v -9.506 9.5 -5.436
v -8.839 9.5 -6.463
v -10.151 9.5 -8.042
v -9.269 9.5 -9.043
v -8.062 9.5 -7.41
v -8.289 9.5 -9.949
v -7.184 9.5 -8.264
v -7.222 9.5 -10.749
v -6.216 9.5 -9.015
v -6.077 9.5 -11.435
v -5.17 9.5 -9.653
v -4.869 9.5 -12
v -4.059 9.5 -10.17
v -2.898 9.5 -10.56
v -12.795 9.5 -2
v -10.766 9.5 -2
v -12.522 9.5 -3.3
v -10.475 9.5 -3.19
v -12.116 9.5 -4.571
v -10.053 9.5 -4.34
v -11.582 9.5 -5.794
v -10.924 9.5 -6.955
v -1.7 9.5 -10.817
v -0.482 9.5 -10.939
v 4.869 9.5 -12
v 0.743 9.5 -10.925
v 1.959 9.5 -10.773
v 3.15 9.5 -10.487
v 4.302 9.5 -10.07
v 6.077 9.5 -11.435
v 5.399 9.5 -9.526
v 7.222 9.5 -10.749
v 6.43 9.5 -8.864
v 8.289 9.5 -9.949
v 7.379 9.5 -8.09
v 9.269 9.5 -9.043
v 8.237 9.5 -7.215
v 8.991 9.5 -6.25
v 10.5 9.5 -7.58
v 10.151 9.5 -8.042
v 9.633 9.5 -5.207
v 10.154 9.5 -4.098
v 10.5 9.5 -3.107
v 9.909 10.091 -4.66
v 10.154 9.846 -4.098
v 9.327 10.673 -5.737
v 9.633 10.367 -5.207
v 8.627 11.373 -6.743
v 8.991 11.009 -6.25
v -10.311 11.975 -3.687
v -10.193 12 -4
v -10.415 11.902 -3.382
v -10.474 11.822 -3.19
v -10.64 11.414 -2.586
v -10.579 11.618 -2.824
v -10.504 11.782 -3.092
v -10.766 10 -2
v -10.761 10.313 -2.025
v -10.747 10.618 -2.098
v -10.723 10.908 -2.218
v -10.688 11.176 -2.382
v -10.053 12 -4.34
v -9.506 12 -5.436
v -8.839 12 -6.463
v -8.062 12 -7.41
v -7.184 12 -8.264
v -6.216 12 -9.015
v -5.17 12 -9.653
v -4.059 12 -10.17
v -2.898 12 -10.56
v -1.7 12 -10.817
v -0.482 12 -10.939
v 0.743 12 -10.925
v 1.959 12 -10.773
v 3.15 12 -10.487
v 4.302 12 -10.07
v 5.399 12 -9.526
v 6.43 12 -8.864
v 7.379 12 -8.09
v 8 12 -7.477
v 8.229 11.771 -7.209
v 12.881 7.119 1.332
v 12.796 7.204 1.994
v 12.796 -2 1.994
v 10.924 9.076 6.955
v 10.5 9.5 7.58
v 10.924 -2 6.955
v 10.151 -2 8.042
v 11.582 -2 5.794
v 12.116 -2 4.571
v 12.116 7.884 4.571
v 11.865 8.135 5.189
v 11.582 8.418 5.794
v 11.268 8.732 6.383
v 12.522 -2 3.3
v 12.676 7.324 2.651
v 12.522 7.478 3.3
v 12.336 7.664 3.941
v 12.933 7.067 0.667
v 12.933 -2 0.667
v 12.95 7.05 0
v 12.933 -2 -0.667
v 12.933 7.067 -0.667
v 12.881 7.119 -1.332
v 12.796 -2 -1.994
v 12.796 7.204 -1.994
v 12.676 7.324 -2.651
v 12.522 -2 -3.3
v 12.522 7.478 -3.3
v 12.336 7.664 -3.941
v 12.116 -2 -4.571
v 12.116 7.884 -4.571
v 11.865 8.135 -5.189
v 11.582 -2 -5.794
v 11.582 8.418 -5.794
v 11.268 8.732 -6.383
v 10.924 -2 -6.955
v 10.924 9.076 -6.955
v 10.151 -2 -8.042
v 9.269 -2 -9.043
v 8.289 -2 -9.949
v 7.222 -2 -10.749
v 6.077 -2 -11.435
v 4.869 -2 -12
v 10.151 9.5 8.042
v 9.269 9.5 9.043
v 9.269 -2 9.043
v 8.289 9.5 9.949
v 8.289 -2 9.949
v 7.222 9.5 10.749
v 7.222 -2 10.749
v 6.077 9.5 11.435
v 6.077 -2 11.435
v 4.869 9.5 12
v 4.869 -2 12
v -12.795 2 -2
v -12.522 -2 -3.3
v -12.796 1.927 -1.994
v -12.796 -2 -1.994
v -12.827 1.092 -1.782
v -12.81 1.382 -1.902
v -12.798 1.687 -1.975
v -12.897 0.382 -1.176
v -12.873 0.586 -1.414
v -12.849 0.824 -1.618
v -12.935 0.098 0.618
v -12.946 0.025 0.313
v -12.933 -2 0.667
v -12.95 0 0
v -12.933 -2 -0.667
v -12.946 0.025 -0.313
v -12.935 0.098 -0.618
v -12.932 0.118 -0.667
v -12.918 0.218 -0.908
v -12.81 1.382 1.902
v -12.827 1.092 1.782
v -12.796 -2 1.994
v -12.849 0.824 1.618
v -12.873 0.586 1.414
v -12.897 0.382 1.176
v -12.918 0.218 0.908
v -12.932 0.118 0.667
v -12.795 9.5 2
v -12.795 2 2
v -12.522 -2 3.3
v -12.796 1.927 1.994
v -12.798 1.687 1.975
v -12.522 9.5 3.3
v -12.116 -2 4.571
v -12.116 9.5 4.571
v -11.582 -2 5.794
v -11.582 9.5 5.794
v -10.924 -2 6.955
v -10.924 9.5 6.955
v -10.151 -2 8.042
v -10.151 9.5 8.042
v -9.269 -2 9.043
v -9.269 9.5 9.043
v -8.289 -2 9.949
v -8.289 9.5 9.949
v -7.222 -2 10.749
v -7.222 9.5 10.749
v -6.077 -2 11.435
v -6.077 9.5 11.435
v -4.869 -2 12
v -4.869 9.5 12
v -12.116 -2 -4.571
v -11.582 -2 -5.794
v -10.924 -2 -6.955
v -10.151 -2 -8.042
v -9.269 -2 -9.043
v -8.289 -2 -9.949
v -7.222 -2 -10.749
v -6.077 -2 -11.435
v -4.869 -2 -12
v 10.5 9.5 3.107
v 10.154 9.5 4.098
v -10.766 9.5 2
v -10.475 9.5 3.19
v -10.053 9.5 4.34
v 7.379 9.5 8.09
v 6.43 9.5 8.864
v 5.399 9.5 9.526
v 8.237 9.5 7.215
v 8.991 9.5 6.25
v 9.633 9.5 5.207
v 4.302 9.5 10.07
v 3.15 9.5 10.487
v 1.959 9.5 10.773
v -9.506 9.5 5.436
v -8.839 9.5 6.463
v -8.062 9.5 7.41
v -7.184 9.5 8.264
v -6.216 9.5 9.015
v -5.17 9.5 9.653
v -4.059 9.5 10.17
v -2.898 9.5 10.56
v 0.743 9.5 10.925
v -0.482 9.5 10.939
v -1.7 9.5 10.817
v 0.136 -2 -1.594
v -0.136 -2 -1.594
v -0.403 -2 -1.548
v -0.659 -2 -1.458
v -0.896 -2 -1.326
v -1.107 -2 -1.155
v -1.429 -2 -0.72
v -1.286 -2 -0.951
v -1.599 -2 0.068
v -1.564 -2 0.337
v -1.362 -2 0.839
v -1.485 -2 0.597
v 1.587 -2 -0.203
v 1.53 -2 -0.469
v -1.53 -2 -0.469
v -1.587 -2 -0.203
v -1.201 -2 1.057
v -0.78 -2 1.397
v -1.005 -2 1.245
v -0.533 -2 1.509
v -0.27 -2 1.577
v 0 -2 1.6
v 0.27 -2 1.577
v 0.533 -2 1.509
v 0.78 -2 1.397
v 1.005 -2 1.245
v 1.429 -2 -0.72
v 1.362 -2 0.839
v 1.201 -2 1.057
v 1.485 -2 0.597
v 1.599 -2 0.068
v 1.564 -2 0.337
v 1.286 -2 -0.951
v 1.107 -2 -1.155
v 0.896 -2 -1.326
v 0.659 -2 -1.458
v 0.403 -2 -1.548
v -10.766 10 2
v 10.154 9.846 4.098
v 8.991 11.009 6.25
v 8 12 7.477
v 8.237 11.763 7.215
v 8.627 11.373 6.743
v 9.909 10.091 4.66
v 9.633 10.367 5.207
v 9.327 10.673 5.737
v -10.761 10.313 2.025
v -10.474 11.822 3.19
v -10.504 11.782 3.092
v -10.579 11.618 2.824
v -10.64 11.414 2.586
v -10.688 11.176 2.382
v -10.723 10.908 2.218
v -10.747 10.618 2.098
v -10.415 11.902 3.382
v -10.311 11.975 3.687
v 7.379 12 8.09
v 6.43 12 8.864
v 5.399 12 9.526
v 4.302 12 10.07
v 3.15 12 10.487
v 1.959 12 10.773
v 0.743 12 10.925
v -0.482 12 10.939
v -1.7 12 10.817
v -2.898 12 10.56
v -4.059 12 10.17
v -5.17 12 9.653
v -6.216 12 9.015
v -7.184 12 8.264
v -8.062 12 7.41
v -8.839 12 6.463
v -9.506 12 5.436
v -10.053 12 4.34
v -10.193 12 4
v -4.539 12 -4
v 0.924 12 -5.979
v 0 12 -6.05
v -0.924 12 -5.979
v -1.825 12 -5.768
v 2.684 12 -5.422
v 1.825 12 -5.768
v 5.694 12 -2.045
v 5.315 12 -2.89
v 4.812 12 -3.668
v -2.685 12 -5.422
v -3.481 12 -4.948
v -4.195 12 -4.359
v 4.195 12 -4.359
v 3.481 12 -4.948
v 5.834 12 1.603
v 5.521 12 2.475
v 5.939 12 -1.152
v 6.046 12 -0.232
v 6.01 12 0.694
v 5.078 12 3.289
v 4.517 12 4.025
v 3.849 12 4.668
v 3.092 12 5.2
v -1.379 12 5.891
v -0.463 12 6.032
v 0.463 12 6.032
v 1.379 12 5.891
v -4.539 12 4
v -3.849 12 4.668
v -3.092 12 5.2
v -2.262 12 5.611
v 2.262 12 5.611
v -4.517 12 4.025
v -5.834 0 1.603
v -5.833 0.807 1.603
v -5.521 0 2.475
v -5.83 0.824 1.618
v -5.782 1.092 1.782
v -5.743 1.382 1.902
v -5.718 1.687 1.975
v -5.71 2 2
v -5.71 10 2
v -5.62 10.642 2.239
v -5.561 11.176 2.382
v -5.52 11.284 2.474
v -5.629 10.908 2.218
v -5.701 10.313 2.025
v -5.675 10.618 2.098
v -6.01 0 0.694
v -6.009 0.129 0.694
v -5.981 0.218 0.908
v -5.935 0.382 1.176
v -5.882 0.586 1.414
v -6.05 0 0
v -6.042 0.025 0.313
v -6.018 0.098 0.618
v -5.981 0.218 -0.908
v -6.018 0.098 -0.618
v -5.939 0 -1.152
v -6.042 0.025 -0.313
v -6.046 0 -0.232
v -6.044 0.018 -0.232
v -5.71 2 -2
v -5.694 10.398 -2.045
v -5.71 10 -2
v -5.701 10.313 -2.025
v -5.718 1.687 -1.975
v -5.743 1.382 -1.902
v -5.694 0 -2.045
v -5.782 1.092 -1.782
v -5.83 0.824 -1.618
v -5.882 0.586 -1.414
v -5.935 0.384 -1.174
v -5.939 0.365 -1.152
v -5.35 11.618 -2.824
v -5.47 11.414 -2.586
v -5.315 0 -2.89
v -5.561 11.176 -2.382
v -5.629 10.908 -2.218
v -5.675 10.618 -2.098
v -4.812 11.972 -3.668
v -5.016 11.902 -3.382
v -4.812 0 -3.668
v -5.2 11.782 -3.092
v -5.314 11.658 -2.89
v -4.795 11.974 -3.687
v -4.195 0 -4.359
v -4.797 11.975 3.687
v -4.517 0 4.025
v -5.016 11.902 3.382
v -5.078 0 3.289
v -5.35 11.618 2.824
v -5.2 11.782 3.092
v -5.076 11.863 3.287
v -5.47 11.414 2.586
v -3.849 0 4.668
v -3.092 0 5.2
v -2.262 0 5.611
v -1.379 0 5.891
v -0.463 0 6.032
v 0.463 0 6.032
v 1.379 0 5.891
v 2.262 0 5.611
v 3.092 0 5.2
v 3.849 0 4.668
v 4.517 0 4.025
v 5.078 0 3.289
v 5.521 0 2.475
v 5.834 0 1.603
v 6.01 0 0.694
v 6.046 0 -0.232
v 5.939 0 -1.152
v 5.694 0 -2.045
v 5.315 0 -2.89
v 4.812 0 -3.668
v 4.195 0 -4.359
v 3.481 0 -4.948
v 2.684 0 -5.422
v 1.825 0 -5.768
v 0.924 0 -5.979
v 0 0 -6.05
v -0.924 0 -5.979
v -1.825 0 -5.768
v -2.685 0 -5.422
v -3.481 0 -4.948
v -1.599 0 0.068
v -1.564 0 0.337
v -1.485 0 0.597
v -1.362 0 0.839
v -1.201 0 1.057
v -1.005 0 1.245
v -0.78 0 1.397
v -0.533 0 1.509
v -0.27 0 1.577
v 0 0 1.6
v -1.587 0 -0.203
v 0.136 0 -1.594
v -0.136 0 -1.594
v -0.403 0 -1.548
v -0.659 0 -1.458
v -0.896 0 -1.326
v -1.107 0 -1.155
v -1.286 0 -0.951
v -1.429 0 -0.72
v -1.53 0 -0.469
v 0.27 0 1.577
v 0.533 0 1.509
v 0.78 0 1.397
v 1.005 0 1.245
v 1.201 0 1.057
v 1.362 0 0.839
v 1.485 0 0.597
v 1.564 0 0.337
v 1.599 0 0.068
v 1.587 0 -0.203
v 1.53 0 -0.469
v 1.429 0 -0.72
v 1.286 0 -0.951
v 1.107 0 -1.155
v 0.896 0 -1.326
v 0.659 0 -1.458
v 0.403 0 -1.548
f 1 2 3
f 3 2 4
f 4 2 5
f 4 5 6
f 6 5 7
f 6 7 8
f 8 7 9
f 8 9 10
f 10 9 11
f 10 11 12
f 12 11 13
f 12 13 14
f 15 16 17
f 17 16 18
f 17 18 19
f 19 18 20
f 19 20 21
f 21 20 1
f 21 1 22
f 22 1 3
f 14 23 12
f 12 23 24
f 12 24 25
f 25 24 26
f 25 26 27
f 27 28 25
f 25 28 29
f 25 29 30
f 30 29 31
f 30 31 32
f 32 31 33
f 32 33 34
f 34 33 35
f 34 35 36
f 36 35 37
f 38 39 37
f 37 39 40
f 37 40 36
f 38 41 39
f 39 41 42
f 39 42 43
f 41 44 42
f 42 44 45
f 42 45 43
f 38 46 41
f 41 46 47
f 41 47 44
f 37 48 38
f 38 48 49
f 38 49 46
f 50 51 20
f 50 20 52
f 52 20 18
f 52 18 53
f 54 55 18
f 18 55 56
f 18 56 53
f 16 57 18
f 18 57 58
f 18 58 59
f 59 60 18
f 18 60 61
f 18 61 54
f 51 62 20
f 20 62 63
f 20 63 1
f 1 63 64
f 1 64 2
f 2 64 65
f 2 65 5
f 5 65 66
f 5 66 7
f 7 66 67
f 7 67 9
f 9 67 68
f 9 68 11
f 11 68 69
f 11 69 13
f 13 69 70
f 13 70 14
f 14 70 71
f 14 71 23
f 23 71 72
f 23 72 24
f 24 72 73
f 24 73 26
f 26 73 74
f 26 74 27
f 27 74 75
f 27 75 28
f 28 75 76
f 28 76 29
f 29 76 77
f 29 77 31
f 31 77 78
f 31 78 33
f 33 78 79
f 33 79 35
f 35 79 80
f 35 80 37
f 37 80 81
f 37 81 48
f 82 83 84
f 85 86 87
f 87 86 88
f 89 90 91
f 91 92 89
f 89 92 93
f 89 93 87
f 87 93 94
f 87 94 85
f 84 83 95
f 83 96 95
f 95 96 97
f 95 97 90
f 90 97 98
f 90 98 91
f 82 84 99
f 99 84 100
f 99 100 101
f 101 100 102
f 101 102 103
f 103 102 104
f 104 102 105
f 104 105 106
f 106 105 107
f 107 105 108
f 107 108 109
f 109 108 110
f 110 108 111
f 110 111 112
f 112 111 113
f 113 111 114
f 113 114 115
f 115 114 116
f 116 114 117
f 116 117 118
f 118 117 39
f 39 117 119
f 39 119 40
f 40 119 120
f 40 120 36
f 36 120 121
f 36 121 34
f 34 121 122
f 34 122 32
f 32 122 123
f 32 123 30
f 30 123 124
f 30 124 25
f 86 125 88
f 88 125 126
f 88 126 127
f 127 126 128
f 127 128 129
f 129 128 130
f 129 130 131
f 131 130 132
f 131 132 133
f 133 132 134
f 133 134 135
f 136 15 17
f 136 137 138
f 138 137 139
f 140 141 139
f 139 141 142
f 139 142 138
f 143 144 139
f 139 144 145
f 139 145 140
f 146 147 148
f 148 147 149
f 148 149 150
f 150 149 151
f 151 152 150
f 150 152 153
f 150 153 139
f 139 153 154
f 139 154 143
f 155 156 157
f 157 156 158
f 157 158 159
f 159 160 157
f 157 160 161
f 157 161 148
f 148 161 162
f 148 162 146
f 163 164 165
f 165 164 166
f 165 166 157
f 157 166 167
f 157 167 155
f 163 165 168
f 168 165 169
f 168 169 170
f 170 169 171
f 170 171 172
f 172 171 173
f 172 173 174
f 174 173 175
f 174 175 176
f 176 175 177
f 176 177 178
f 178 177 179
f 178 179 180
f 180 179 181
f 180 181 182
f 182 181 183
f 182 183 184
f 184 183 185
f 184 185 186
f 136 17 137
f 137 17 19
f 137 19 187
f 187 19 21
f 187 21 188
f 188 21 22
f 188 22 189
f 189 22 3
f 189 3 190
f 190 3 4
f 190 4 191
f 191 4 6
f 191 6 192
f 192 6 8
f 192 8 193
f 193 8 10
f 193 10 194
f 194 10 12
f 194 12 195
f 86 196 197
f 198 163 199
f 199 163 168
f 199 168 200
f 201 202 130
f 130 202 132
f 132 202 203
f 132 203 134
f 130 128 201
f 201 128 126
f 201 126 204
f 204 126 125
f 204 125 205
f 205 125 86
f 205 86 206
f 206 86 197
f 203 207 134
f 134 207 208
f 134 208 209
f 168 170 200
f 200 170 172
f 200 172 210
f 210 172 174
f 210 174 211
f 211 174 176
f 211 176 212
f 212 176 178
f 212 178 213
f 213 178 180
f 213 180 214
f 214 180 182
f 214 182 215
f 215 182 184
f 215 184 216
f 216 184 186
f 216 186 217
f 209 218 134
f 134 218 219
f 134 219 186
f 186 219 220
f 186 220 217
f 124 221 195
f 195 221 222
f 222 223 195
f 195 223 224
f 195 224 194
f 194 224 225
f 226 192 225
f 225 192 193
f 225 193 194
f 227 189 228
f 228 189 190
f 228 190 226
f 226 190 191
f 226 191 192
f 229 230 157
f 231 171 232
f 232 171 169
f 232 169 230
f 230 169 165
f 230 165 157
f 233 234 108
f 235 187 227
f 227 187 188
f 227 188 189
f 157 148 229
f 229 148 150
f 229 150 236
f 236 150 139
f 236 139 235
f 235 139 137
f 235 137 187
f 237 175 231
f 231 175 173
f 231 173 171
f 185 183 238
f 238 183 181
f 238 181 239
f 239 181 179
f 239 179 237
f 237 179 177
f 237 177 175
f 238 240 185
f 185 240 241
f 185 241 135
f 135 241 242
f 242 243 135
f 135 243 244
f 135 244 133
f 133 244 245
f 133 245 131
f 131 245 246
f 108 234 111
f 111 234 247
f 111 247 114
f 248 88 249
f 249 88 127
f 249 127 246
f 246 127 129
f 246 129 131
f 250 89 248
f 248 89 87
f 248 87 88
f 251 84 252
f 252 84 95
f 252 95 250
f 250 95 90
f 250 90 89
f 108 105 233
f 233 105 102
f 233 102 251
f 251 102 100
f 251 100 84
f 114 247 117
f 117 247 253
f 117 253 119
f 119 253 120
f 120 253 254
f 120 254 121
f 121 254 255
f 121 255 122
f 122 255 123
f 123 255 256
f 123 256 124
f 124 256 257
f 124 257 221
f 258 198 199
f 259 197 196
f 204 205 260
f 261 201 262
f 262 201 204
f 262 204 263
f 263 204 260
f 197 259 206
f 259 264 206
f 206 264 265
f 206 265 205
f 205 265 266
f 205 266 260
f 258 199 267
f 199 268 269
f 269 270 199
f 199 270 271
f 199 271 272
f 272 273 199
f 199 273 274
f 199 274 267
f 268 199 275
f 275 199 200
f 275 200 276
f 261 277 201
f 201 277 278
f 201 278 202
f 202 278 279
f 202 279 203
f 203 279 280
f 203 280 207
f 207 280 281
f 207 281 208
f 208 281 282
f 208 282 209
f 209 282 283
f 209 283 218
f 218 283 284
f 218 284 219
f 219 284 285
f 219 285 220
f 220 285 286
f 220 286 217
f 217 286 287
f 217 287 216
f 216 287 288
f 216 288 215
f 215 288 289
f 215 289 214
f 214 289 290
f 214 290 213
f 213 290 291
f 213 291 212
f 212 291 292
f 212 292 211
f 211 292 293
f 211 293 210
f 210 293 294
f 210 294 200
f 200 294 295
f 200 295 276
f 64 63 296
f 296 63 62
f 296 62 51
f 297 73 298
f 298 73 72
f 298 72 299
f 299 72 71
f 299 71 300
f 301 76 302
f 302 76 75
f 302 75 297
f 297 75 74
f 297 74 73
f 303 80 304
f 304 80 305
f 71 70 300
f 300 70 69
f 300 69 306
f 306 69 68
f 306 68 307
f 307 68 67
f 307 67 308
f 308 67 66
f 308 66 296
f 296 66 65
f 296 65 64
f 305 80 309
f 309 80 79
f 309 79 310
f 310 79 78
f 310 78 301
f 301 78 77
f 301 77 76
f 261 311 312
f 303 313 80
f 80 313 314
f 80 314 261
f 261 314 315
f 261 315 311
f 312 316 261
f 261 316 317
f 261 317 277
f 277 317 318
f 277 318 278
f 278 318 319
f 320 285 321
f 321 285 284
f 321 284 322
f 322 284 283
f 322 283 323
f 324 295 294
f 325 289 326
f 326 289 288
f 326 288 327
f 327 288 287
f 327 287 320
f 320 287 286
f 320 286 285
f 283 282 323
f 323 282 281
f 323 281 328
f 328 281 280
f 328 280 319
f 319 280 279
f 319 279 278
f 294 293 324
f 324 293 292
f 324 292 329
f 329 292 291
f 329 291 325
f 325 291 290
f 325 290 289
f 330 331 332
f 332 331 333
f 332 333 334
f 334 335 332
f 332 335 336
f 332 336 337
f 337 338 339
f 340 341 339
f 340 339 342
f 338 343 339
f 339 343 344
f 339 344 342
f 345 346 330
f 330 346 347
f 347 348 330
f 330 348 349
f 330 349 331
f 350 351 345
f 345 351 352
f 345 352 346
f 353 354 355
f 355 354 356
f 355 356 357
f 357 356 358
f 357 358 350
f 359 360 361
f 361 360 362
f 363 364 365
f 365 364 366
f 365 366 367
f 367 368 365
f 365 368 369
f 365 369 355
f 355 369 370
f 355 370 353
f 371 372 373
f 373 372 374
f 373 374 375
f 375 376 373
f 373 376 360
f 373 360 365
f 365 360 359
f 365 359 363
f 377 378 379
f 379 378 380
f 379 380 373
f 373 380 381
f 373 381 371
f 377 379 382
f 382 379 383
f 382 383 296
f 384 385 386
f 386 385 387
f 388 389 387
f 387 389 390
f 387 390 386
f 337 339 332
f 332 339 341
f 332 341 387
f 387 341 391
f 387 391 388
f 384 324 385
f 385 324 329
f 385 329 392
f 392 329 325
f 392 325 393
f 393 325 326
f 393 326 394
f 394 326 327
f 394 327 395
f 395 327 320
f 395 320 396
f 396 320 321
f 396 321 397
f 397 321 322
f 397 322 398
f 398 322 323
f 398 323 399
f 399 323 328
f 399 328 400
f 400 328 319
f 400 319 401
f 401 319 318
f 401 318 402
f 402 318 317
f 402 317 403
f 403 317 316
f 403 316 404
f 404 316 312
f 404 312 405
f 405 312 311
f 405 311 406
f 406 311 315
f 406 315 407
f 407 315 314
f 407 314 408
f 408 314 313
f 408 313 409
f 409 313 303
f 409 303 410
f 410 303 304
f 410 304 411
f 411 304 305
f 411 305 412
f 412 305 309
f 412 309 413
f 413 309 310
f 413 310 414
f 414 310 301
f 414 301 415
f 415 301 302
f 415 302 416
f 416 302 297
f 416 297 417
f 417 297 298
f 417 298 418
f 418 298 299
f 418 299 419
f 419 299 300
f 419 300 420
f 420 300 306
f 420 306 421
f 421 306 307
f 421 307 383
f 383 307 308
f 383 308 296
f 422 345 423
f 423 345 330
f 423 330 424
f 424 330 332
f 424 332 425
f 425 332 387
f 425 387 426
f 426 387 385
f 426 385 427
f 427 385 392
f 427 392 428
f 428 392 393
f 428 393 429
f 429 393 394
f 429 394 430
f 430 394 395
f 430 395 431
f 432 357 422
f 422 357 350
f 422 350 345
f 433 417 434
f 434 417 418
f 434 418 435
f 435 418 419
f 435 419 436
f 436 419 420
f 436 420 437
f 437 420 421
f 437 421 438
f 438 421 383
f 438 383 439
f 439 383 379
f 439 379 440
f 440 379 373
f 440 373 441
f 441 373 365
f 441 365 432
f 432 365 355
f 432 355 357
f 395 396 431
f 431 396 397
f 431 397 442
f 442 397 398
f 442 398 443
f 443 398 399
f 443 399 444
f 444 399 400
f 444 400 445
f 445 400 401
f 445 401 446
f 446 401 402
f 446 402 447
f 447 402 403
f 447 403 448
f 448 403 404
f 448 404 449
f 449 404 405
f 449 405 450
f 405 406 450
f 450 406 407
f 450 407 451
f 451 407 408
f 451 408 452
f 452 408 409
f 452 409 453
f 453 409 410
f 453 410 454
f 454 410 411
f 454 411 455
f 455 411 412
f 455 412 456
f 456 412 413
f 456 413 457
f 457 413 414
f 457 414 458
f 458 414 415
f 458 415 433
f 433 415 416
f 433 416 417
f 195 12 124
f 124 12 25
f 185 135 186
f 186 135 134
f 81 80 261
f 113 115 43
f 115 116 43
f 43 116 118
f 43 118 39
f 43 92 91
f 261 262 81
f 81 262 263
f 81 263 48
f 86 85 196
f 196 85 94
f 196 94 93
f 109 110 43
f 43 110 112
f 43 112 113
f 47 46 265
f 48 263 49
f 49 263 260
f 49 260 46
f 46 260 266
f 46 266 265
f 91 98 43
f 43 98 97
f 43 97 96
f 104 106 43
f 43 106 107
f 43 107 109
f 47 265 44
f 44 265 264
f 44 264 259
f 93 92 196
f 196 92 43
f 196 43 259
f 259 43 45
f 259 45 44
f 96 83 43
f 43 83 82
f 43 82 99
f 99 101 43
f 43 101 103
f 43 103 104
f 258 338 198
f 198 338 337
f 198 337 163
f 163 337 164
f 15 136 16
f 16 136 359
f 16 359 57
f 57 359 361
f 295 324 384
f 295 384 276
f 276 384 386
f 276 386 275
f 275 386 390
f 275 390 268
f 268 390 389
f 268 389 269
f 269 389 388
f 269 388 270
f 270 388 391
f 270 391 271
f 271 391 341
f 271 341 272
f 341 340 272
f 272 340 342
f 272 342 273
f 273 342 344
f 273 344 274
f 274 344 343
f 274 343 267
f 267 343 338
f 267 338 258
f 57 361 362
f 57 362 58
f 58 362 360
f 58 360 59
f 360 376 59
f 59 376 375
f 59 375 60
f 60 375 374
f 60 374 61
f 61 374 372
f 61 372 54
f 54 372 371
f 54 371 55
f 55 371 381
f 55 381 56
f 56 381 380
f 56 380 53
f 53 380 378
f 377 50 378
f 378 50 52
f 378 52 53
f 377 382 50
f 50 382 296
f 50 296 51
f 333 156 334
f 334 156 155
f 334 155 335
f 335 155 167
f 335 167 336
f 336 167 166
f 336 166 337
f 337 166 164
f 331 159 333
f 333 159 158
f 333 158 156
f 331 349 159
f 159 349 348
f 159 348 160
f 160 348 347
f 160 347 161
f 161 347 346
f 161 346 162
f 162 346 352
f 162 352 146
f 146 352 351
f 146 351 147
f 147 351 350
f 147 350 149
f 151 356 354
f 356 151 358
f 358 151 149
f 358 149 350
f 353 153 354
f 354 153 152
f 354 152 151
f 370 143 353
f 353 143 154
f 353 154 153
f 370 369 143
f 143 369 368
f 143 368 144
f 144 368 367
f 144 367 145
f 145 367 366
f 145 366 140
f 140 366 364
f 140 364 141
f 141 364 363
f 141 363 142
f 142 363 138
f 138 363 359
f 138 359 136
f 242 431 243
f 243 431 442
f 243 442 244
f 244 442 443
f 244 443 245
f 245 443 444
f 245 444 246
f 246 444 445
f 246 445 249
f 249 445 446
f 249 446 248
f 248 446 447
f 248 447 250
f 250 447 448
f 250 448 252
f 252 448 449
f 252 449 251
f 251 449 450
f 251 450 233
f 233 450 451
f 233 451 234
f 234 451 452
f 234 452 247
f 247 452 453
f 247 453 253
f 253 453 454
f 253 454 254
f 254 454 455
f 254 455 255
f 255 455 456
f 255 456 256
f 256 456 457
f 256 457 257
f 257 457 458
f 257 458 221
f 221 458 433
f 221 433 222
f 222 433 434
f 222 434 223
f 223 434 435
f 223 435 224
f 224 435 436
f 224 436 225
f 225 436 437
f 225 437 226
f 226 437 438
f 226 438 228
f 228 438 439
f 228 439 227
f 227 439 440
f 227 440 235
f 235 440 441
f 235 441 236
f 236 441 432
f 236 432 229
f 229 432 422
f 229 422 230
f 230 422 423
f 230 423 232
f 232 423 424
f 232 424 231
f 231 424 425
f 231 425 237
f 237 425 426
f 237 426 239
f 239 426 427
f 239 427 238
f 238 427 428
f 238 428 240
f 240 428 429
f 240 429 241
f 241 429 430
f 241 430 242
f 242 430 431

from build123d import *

# Parameters (mm, degrees)
SKETCH1_R               = 10.95
SKETCH1_R_2             = 6.05
BOSS_EXTRUDE1_DEPTH     = 2
BOSS_EXTRUDE2_START     = 12
SKETCH1_3_R             = 10.95
SKETCH1_3_R_2           = 6.05
BOSS_EXTRUDE2_DEPTH     = 12
BOSS_EXTRUDE3_START     = -2.5
SKETCH2_R               = 12.95
SKETCH2_R_2             = 10.95
BOSS_EXTRUDE3_DEPTH     = 11.5
CUT_EXTRUDE1_DEPTH      = 22.895319134
CUT_EXTRUDE1_DEPTH_BACK = 22.895319134
SKETCH3_W               = 100
SKETCH3_H               = 24
CUT_EXTRUDE3_DEPTH      = 22.347189511
CUT_EXTRUDE3_DEPTH_BACK = 22.347189511
SKETCH5_W               = 18
SKETCH5_H               = 4
CUT_EXTRUDE4_DEPTH      = 22.347189511
FILLET1_R               = 2
CUT_EXTRUDE5_DEPTH      = 22.347189684
CUT_EXTRUDE5_DEPTH_BACK = 22.347189684
SKETCH6_R               = 1.6


with BuildPart() as part:
    # Sketch1 → Boss-Extrude1 (new body)
    # profile 1 of 2: a face of its own
    with BuildSketch(Plane(origin=(0, 0, 0), x_dir=(1, 0, 0), z_dir=(0, 1, 0))):
        with Locations(Location((0, 0, 0), (0, 0, 270))):
            Circle(SKETCH1_R)
        Circle(SKETCH1_R_2, mode=Mode.SUBTRACT)
    # profile 2 of 2: a face of its own
    with BuildSketch(Plane(origin=(0, 0, 0), x_dir=(1, 0, 0), z_dir=(0, 1, 0))):
        Circle(SKETCH1_R_2)
    extrude(amount=-BOSS_EXTRUDE1_DEPTH)

    # Sketch1<3> → Boss-Extrude2 (add)
    with BuildSketch(Plane(origin=(0, 0, 0), x_dir=(1, 0, 0), z_dir=(0, 1, 0)).offset(BOSS_EXTRUDE2_START)):
        with Locations(Location((0, 0, 0), (0, 0, 270))):
            Circle(SKETCH1_3_R)
        with Locations(Location((0, 0, 0), (0, 0, 270))):
            Circle(SKETCH1_3_R_2, mode=Mode.SUBTRACT)
    extrude(amount=-BOSS_EXTRUDE2_DEPTH)

    # Sketch2 → Boss-Extrude3 (add)
    with BuildSketch(Plane(origin=(0, 12, 0), x_dir=(1, 0, 0), z_dir=(0, 1, 0)).offset(BOSS_EXTRUDE3_START)):
        with Locations(Location((0, 0, 0), (0, 0, 270))):
            Circle(SKETCH2_R)
        with Locations(Location((0, 0, 0), (0, 0, 270))):
            Circle(SKETCH2_R_2, mode=Mode.SUBTRACT)
    extrude(amount=-BOSS_EXTRUDE3_DEPTH)

    # Sketch3 → Cut-Extrude1 (cut, two sides: drawn at the far end of the back side and taken through both)
    with BuildSketch(Plane(origin=(0, 0, 0), x_dir=(1, 0, 0), z_dir=(0, 1, 0)).offset(-CUT_EXTRUDE1_DEPTH_BACK)):
        with Locations((0, -24)):
            Rectangle(SKETCH3_W, SKETCH3_H)
        with Locations((0, 24)):
            Rectangle(SKETCH3_W, SKETCH3_H)
    extrude(amount=CUT_EXTRUDE1_DEPTH + CUT_EXTRUDE1_DEPTH_BACK, mode=Mode.SUBTRACT)

    # Sketch4 → Cut-Extrude3 (cut, two sides: drawn at the far end of the back side and taken through both)
    with BuildSketch(Plane.XY.offset(-CUT_EXTRUDE3_DEPTH_BACK)):
        Polygon((13, 15), (5, 15), (13, 7), align=None)
    extrude(amount=CUT_EXTRUDE3_DEPTH + CUT_EXTRUDE3_DEPTH_BACK, mode=Mode.SUBTRACT)

    # Sketch5 → Cut-Extrude4 (cut, through all)
    with BuildSketch(Plane(origin=(0, 0, 0), x_dir=(1, 0, 0), z_dir=(0, 1, 0))):
        with Locations((-11, 0)):
            Rectangle(SKETCH5_W, SKETCH5_H)
    extrude(amount=CUT_EXTRUDE4_DEPTH, mode=Mode.SUBTRACT)

    # Fillet1
    fillet1_edges = [part.edges().sort_by_distance(p)[0] for p in [
        (-8.237831116, 12, 2),
        (-8.237831116, 12, -2),
        (-9.252243836, 0, -2),
        (-9.252243836, 0, 2),
    ]]
    fillet(fillet1_edges, radius=FILLET1_R - 0.0001)  # a hair under: the kernel refuses the full size

    # Sketch6 → Cut-Extrude5 (cut, two sides: drawn at the far end of the back side and taken through both)
    with BuildSketch(Plane(origin=(0, 0, 0), x_dir=(1, 0, 0), z_dir=(0, 1, 0)).offset(-CUT_EXTRUDE5_DEPTH_BACK)):
        with Locations(Location((0, 0, 0), (0, 0, 270))):
            Circle(SKETCH6_R)
    extrude(amount=CUT_EXTRUDE5_DEPTH + CUT_EXTRUDE5_DEPTH_BACK, mode=Mode.SUBTRACT)


solid = part.part
